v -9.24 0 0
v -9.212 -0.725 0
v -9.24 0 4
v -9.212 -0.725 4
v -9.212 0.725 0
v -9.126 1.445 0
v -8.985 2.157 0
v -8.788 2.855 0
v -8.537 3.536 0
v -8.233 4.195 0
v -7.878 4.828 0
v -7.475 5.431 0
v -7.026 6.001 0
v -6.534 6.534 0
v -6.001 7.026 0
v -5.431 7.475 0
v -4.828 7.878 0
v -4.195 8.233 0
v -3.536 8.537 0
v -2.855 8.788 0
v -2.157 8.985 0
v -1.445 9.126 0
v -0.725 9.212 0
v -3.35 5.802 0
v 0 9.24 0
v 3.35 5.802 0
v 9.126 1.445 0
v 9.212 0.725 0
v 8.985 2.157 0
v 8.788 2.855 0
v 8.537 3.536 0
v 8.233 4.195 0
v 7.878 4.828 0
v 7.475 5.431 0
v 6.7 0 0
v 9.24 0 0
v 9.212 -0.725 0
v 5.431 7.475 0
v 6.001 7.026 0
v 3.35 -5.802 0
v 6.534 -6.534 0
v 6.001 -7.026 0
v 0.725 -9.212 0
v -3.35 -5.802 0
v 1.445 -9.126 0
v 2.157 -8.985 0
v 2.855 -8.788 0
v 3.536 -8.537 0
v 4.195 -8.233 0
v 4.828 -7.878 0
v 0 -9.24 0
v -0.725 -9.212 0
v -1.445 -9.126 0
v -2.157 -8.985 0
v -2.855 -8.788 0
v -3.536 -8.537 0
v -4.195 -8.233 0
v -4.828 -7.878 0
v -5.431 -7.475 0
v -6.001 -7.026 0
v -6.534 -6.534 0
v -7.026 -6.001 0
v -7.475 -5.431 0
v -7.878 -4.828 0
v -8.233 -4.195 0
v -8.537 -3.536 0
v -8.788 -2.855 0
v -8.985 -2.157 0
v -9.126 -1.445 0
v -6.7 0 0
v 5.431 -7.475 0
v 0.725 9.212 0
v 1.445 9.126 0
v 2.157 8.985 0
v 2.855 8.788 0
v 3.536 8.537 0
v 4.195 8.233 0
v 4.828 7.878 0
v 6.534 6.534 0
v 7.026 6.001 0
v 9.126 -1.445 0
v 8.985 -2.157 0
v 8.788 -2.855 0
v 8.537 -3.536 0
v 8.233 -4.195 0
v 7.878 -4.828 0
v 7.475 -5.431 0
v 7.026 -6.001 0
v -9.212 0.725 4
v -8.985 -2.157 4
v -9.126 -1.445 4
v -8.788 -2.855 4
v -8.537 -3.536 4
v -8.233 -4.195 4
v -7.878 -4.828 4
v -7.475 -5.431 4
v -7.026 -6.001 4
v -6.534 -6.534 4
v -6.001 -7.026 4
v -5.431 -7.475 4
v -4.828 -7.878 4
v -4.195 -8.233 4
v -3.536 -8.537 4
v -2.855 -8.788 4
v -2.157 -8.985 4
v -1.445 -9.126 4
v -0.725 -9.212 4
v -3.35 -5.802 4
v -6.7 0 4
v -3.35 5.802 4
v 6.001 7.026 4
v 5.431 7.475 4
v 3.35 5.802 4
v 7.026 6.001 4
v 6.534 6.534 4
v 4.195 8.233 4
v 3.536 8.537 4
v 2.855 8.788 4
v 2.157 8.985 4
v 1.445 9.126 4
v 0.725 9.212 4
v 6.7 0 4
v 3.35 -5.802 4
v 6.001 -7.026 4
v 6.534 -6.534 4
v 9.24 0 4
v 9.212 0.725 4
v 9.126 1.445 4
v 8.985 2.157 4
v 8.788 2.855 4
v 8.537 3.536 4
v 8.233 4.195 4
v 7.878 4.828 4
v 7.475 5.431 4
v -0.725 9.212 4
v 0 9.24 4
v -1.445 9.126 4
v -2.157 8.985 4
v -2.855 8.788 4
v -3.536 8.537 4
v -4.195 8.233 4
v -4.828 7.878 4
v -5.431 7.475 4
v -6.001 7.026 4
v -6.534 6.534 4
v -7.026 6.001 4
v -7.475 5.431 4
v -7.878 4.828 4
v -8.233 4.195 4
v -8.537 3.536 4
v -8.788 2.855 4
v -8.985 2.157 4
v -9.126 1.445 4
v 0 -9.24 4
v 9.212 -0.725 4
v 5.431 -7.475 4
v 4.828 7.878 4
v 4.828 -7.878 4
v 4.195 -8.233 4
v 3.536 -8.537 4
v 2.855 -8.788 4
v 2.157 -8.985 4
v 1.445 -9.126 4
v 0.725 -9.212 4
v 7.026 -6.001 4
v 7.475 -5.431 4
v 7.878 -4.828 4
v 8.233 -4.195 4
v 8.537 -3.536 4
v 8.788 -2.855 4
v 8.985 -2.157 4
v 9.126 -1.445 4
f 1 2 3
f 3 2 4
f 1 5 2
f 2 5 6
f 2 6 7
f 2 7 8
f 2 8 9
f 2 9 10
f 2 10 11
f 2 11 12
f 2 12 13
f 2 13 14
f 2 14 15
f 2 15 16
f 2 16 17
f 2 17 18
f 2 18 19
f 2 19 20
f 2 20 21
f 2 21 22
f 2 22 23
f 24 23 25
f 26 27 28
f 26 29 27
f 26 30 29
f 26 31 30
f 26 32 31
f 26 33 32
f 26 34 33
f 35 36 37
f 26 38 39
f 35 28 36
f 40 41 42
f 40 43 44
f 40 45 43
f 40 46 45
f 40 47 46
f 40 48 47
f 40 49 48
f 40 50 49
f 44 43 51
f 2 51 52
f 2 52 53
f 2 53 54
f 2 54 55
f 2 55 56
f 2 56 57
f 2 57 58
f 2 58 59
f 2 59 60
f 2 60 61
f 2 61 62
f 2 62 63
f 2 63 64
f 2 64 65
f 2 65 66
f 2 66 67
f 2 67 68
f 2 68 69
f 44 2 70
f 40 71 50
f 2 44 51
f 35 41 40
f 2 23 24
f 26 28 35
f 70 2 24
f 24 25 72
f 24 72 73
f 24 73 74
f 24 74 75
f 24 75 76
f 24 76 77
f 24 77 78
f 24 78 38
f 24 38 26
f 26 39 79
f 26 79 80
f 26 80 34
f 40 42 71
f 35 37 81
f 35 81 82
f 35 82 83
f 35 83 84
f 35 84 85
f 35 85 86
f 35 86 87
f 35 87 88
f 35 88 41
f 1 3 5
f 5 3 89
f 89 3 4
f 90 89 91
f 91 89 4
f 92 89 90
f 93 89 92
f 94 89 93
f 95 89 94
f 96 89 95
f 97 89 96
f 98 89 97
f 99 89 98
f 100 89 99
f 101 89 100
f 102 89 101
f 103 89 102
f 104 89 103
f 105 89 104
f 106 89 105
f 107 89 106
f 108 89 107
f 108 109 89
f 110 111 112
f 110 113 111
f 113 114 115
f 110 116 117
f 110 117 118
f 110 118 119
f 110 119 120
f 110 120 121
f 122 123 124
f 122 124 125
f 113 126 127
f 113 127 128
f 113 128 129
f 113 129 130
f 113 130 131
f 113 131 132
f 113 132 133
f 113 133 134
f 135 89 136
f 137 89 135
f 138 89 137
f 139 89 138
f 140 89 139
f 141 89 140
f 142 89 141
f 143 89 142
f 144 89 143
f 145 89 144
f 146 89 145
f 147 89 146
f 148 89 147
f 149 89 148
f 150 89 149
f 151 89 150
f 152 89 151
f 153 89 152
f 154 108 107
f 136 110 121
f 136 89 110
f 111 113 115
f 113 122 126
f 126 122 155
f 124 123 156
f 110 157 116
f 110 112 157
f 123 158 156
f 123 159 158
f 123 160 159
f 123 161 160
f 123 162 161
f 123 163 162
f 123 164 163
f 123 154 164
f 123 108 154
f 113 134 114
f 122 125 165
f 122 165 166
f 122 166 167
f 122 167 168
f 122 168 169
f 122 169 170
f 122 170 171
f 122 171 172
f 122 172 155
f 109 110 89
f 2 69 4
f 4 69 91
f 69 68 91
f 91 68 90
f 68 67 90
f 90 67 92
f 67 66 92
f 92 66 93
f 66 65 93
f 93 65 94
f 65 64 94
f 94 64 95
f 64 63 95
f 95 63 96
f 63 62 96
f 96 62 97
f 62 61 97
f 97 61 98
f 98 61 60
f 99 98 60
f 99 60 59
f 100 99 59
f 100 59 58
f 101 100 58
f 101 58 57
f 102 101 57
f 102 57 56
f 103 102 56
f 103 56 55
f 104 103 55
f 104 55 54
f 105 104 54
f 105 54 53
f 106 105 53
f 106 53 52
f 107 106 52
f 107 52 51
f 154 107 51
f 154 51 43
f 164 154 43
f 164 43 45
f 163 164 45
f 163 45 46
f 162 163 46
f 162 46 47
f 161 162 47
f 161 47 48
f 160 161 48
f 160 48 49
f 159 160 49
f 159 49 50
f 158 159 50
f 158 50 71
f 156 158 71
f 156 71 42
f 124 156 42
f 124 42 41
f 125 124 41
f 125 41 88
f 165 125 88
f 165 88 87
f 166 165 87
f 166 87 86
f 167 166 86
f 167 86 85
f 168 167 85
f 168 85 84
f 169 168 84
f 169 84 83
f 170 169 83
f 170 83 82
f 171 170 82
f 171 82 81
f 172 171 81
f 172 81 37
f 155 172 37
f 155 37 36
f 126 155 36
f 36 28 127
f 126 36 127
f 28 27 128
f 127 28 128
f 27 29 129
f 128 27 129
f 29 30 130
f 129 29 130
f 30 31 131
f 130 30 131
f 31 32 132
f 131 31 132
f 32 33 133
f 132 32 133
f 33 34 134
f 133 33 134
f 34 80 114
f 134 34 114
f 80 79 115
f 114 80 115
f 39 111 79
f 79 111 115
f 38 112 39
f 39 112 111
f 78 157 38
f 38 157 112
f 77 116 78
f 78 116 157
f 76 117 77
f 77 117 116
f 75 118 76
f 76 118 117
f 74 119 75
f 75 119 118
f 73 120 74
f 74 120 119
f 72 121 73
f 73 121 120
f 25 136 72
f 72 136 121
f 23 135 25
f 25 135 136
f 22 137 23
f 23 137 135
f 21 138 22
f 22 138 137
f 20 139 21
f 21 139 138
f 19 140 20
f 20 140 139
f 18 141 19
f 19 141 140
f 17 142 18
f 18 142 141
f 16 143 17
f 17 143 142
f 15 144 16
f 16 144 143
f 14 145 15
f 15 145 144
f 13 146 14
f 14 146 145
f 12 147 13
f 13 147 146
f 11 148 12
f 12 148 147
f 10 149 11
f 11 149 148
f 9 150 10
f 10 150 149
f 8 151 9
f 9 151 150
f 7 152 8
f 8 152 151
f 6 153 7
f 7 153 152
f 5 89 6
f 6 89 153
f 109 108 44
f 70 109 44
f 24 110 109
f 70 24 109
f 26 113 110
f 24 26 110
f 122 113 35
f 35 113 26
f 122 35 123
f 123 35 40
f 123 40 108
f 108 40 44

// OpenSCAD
// file: shaft.scad
include <inc/constants.scad>

//extra radius
slant = 2;


module bar(length=1, square=false, one_hole=true, slanted=false, holes=false, mirrorslanted=false)
{
  th=3;
  width=hr*2;
  len = length*(dh)+hr*2*(length-1);
  
  //outer width
  ow = th+pgive*2;

  


difference()
{
  hull()
  {
  cylinder(r=width/2+ow,h=4);
  translate([len+hr*2,0,0])
  cylinder(r=width/2+ow,h=4);
  }

  union(){
  //hole in the middle
  if(one_hole && length>1)
  hull()
  {
  translate([2*hr+th,0,-1])
  cylinder(r=hr+pgive, h=10);

  translate([len-pgive*4-th,0,-1])
  cylinder(r=hr+pgive, h=10);
  }
  else if(holes)
  {
    for(i=[1:length-1])
  {
  translate([i*dh+i*hr*2,0,0])
  if(square[i])
  {
    if(slanted[i])
      cylinder(r1=hr+ggive, r2=hr+pgive+slant, h=4, $fn=6);
    else
      cylinder(r=hr+ggive, h=4, $fn=6);

  }
  else
  {
    if(slanted[i])
      cylinder(r1=hr+pgive, r2=hr+pgive+slant, h=4);
    else
      cylinder(r=hr+pgive, h=4);

  }
  
  }

  }

  
  //hole on other end
  translate([len+hr*2,0,0])
  if(square[length])
  {
    if(slanted[length])
      cylinder(r1=hr+ggive,r2=hr+ggive+slant, h=4, $fn=6);
    else if(mirrorslanted[length])
      cylinder(r2=hr+pgive, r1=hr+pgive+slant, h=4, $fn=6);
    else
      cylinder(r=hr+ggive,h=4, $fn=6);
    
  }
  else
  {
    if(slanted[length])
      cylinder(r1=hr+pgive, r2=hr+pgive+slant, h=4);
    else
      cylinder(r=hr+pgive,h=4);
  }

  //first hole
  translate([0,0,0])
  if(square[0])
  {
    if(slanted[0])
      cylinder(r1=hr+ggive, r2=hr+pgive+slant, h=4, $fn=6);
    else
      cylinder(r=hr+ggive,h=4, $fn=6);
  }

  else
  {
    if(slanted[0])
      cylinder(r1=hr+pgive, r2=hr+ggive+slant,h=4);
    else
      cylinder(r=hr+pgive,h=4);
  }

  }
}

}

//bar(length=4, one_hole=true, holes=false, square=[true,false,false,false,true], slanted=[true,false,false,false,true]);


bar(length=1, one_hole=true, holes=false, square=[true,true], slanted=[true,false], mirrorslanted=[true, true]);
// file: inc/constants.scad
pi=3.1415;
$fn=80;
//hole radius
hr = 6;

//distance between holes
dh = 12;

//give between two gears
giveg = .5;

//shaft give
sgive = .6;

//plug give
pgive = .12;

//fastener give (holes)
fgive = .13;

pitch=.25;

//gear give (hole)
ggive = .7;

//spacer give
spgive = .3;


////fastener sizes
//notch width
notchw = 0;

//notch height
notchh = 0;

//fastener height
fh = 4;

//fastener width (sans notch)
fw = hr;


//gear hole radius
ghr = 1.4;

//arrow length
al = 8;
// main file
include <inc/constants.scad>
use <shaft.scad>


module spacer(squares=[true])
{
  bar(length=0, square=squares);

}

spacer();

//bar(length=1, square=[true]);
